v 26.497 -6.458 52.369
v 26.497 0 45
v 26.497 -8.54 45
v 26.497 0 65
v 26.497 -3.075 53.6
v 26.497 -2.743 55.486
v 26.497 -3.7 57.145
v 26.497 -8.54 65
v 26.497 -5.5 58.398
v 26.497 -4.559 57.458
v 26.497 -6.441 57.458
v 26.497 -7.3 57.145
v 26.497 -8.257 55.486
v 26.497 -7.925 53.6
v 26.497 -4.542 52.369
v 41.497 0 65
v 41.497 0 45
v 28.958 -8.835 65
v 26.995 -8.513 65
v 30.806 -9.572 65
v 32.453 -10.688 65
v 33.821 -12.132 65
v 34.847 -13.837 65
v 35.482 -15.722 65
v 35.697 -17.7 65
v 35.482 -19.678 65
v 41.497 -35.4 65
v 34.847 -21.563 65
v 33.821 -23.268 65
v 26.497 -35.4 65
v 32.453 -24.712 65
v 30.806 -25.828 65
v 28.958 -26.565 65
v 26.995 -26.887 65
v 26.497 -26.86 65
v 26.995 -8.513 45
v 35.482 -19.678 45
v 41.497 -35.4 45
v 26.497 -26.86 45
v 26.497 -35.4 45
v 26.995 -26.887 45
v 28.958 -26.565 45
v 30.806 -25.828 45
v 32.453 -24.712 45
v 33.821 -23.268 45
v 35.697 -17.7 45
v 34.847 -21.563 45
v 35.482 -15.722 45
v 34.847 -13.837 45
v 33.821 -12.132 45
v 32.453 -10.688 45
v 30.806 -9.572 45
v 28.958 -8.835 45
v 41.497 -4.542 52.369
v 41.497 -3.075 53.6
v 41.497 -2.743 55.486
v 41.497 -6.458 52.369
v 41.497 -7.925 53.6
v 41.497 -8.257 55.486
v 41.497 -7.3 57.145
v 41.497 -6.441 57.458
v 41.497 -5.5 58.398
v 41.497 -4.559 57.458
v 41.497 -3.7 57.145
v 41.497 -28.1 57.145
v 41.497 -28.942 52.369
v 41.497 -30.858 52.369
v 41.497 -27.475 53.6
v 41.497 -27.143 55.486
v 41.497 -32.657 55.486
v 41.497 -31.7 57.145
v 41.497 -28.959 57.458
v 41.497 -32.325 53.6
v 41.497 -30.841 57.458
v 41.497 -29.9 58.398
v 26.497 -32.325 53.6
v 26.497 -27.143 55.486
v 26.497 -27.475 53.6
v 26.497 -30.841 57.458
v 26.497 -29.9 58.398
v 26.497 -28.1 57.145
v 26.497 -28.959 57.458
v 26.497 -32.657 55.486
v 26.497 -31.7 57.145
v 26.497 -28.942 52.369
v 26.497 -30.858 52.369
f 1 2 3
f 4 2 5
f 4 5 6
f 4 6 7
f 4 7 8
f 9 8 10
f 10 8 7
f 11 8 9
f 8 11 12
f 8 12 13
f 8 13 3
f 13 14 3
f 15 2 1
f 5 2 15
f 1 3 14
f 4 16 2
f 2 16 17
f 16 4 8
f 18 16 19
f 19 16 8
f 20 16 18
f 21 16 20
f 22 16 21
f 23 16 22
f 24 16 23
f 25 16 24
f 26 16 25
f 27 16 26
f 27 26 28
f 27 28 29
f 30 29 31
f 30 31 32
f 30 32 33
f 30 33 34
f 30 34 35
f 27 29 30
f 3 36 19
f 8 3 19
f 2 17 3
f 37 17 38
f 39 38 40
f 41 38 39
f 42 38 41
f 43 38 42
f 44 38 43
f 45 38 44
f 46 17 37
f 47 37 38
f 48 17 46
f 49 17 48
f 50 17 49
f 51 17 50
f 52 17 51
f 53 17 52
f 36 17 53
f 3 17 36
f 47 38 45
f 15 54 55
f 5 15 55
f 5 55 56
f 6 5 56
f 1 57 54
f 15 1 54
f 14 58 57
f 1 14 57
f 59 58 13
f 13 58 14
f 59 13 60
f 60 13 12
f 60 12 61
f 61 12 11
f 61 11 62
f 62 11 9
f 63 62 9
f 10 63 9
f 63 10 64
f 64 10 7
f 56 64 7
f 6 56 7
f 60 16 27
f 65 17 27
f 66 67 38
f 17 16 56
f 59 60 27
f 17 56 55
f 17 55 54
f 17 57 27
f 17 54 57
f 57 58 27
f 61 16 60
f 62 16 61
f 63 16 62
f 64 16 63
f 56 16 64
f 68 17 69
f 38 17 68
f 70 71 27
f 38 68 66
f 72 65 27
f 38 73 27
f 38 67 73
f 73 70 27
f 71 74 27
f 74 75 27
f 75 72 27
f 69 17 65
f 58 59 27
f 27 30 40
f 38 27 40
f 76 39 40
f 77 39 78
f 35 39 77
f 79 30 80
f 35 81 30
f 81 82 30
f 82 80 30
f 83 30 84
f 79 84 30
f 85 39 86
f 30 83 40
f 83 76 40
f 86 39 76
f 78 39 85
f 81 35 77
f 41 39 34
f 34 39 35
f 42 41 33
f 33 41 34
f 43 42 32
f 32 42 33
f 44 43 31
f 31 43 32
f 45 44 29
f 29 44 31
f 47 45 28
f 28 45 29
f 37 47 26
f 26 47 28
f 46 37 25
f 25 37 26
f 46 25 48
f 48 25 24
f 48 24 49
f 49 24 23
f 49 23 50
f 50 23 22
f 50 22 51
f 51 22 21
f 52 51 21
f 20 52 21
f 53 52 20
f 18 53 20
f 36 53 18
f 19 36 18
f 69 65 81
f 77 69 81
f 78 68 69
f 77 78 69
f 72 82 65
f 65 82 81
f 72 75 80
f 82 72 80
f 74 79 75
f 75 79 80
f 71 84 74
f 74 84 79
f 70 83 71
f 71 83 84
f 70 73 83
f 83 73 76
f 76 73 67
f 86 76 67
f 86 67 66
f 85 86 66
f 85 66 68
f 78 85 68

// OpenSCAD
// Parametric Mendel Extruder in SCAD by Vik, based on SCAD conversion by rbisping
// vik@diamondage.co.nz, 2010-01-02
// Pinch bearing & filament size is parametric. Also added pointy tops to horizontal holes.

m4_clearance_rad=2.6;
bearing_clearance_rad=8;
filament_rad=1.6;		// Includes some clearance.
ptfe_rad=9.2;			// 18mm dia PTFE spacer. May well be 16mm rad for you.

nut_rad = 8.3;			// M8 nut on the bowden cable
nut_rad = 12.7;			// nut on the bowden cable
extruder_thick=nut_rad*2+10;
extruder_height=10;
extruder_clamp_thick=30;
filament_x_offset=26.497;

module box(w,h,d) {
	scale ([w,h,d]) cube(1, true);
}

module roundedBox(w,h,d,f){
	difference(){
		box(w,h,d);
		translate([-w/2,h/2,0]) cube(w/(f/2),true);
		translate([w/2,h/2,0]) cube(w/(f/2),true);
		translate([-w/2,-h/2,0]) cube(w/(f/2),true);
		translate([w/2,-h/2,0]) cube(w/(f/2),true);
	}
	translate([-w/2+w/f,h/2-w/f,-d/2]) cylinder(d,w/f, w/f);
	translate([w/2-w/f,h/2-w/f,-d/2]) cylinder(d,w/f, w/f);
	translate([-w/2+w/f,-h/2+w/f,-d/2]) cylinder(d,w/f, w/f);
	translate([w/2-w/f,-h/2+w/f,-d/2]) cylinder(d,w/f, w/f);
}
module hexagon(height, depth) {
	boxWidth=height/1.75;
		union(){
			box(boxWidth, height, depth);
			rotate([0,0,60]) box(boxWidth, height, depth);
			rotate([0,0,-60]) box(boxWidth, height, depth);
		}
}

module m4_hole_horiz(l) {
	cylinder(l,m4_clearance_rad+0.2,m4_clearance_rad+0.2,center=true);
	translate ([m4_clearance_rad*0.6,0,0]) rotate ([0,0,45])
		cube([m4_clearance_rad,m4_clearance_rad,l],center=true);
}

module m8_hole_horiz(l) {
	cylinder(l,m8_clearance_rad,m4_clearance_rad,center=true);
	translate ([m8_clearance_rad*0.6,0,0]) rotate ([0,0,45])
		cube([m8_clearance_rad,m8_clearance_rad,l],center=true);
}

module m4_hole_vert(l) {
	cylinder(l,m4_clearance_rad+0.2,m4_clearance_rad+0.2,center=true);
}

module m6_hole_horiz(l) {
	cylinder(l,m6_clearance_rad,m6_clearance_rad,center=true);
	translate ([m6_clearance_rad*0.6,0,0]) rotate ([0,0,45])
		cube([m6_clearance_rad,m6_clearance_rad,l],center=true);
}
module m8_hole_horiz(l) {
	cylinder(l,m8_clearance_rad,m8_clearance_rad,center=true);
	translate ([m8_clearance_rad*0.6,0,0]) rotate ([0,0,45])
		cube([m8_clearance_rad,m8_clearance_rad,l],center=true);
}

// No .4 3/4 inch countersunk woodscrew (includes a lot of headspace)
module small_woodscrew() {
	rotate ([0,0,30]) {
		translate ([0,0,-7.5]) cylinder(h=3,r1=0.2,r2=1.8,center=true);
		cylinder(h=12,r1=1.8,r2=2.0,center=true);
		translate([0,0,6]) cylinder(h=4, r1=2.0, r2=4.0);
	}
}

// For nut cavities, "height" is the max distance between two points on the hex.
module m4_nut_cavity(l) {
	hexagon(height=8,depth=l);
}

module m8_nut_cavity(l) {
	hexagon(height=14,depth=l);
}

module m4_hole_vert_with_hex(l) {
	union () {
		m4_hole_vert(l);
		translate ([0,0,-l/4]) rotate ([0,0,30]) m4_nut_cavity(l/2);
	}
}

module m4_hole_horiz_with_hex(l) {
	union () {
		m4_hole_horiz(l);
		translate ([0,0,-l/4]) rotate ([0,0,0]) m4_nut_cavity(l/2);
	}
}

module m3_slot() {
	cube([7.149,extruder_thick*2.1,3.4],center=true);
}

filament_oversize=0.4;	// If your extruder is perfect this can be zero :)
module filament_cavity() {
	union () {
		cylinder(extruder_height+2,filament_rad+filament_oversize,filament_rad+filament_oversize,center=true);
	}
}

module pinchwheel()
{
translate([-40,10,0])rotate(90,[1,0,0])
{
difference()
	{
	union()
		{
		// PTFE holder (for woodscrews instead of epoxy)
		translate([filament_x_offset,0,-10])cube([15,extruder_thick,20], center = false);
		}
	union()
		{
		// 1/2 PTFE barrel clamp
		#translate([filament_x_offset,extruder_thick/2,0]) rotate ([90,0,0]) rotate([90,0,0])cylinder(h=22.5,r=ptfe_rad,center=true);
		
		// M4 thermal barrier barrel clamp holes
		translate([filament_x_offset,5.5,0]) rotate([0,90,0]) m4_hole_horiz(50);
		translate([filament_x_offset,extruder_thick-5.5,0]) rotate([0,90,0]) m4_hole_horiz(50);
		
		}
	}
}
}

// Put it in X+ve, Y+ve
rotate([90,0,0])translate ([40,45,0]) pinchwheel();
